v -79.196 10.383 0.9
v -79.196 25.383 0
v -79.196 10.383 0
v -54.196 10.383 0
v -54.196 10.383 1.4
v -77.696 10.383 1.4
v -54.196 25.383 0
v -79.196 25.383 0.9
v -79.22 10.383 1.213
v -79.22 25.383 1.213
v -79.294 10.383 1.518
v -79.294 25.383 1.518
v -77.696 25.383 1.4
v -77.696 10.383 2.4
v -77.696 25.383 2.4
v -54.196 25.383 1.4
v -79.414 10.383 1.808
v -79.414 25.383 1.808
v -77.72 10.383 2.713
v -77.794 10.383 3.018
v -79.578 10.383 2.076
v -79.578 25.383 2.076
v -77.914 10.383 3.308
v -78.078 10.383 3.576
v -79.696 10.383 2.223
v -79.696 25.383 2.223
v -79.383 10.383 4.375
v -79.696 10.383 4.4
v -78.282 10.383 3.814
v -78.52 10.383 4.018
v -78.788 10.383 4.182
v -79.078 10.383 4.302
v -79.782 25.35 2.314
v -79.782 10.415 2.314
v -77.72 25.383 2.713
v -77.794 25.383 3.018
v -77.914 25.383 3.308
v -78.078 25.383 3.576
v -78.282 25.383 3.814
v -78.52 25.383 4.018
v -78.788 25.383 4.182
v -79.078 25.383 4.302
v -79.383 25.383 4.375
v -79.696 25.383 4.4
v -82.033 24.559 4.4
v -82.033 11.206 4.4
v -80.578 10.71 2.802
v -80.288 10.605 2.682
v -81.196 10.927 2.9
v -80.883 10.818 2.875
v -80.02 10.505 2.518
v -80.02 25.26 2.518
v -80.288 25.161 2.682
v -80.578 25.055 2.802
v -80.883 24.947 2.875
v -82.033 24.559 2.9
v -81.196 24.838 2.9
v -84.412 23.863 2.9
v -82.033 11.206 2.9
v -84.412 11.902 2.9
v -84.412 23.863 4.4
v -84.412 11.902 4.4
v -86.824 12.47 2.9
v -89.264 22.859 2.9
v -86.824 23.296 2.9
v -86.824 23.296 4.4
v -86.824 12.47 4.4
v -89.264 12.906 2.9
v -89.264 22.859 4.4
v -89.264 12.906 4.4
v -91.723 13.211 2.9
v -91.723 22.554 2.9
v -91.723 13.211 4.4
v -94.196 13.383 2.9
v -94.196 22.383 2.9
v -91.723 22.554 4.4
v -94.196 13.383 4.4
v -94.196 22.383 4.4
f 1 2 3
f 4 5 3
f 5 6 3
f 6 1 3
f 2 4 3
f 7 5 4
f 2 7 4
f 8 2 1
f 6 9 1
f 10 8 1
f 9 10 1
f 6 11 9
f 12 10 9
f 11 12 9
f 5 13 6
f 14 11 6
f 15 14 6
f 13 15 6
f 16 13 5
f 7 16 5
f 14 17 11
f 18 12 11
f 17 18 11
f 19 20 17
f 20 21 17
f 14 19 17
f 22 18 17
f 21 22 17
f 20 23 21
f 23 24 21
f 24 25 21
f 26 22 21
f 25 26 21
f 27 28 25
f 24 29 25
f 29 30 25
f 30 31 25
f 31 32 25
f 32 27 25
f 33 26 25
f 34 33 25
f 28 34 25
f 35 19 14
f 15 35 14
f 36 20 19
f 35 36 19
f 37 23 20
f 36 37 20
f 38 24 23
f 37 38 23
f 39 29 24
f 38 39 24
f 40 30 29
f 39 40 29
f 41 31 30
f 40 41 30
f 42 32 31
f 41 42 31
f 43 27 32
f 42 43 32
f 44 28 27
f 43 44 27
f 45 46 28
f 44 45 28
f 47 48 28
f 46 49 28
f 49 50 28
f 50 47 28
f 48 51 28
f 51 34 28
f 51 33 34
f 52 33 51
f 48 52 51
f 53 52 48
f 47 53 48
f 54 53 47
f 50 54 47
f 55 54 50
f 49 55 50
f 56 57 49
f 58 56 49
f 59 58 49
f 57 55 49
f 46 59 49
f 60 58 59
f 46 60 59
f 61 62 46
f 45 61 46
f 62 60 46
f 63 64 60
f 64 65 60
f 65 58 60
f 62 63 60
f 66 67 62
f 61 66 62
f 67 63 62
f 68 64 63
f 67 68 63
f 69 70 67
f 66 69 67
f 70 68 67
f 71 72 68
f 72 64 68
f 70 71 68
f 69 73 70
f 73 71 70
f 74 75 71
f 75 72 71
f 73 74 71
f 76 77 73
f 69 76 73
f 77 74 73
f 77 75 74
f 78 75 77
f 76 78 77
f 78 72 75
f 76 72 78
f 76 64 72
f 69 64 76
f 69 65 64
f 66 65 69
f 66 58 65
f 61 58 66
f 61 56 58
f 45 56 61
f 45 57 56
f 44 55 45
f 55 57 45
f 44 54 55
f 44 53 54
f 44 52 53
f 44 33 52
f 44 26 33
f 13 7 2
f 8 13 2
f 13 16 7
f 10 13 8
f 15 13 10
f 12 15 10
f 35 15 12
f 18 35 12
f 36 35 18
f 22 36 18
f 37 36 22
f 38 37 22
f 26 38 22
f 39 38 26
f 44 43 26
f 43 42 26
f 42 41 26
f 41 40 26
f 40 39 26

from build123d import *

# Parameters (mm, degrees)
CROQUIS1_W              = 25
CROQUIS1_H              = 15
SALIENTE_EXTRUIR1_DEPTH = 1.4
SALIENTE_EXTRUIR2_DEPTH = 15
REDONDEO1_R             = 2
CORTAR_EXTRUIR1_START   = -2.177124
CORTAR_EXTRUIR1_DEPTH   = 2.177124


with BuildPart() as part:
    # Croquis1 → Saliente-Extruir1 (new body)
    with BuildSketch(Plane.XY):
        with Locations((-66.695768458, 17.882653061)):
            Rectangle(CROQUIS1_W, CROQUIS1_H)
    extrude(amount=SALIENTE_EXTRUIR1_DEPTH)

    # Croquis3 → Saliente-Extruir2 (add)
    with BuildSketch(Plane.XZ.offset(-10.382653061)):
        Polygon((-79.195768458, 1.4), (-79.195768458, 2.9), (-94.195768458, 2.9), (-94.195768458, 4.4), (-77.695768458, 4.4), (-77.695768458, 1.4), align=None)
    extrude(amount=-SALIENTE_EXTRUIR2_DEPTH)

    # Redondeo1
    redondeo1_edges = [part.edges().sort_by_distance(p)[0] for p in [
        (-79.195768458, 17.882653061, 2.9),
        (-77.695768458, 17.882653061, 4.4),
    ]]
    fillet(redondeo1_edges, radius=REDONDEO1_R)

    # Croquis4 → Cortar-Extruir1 (cut)
    with BuildSketch(Plane.XY.offset(4.4).offset(CORTAR_EXTRUIR1_START)):
        with BuildLine():
            Line((-79.695768458, 25.382653061), (-94.195768458, 25.382653061))
            Line((-94.195768458, 25.382653061), (-94.195768458, 22.382653061))
            ThreePointArc((-94.195768458, 22.382653061), (-86.824341518, 23.295756187), (-79.695768458, 25.382653061))
        make_face()
        with BuildLine():
            Line((-94.195768458, 13.382653061), (-94.195768458, 10.382653061))
            Line((-94.195768458, 10.382653061), (-79.695768458, 10.382653061))
            ThreePointArc((-79.695768458, 10.382653061), (-86.824341518, 12.469549935), (-94.195768458, 13.382653061))
        make_face()
    extrude(amount=CORTAR_EXTRUIR1_DEPTH, mode=Mode.SUBTRACT)


solid = part.part
